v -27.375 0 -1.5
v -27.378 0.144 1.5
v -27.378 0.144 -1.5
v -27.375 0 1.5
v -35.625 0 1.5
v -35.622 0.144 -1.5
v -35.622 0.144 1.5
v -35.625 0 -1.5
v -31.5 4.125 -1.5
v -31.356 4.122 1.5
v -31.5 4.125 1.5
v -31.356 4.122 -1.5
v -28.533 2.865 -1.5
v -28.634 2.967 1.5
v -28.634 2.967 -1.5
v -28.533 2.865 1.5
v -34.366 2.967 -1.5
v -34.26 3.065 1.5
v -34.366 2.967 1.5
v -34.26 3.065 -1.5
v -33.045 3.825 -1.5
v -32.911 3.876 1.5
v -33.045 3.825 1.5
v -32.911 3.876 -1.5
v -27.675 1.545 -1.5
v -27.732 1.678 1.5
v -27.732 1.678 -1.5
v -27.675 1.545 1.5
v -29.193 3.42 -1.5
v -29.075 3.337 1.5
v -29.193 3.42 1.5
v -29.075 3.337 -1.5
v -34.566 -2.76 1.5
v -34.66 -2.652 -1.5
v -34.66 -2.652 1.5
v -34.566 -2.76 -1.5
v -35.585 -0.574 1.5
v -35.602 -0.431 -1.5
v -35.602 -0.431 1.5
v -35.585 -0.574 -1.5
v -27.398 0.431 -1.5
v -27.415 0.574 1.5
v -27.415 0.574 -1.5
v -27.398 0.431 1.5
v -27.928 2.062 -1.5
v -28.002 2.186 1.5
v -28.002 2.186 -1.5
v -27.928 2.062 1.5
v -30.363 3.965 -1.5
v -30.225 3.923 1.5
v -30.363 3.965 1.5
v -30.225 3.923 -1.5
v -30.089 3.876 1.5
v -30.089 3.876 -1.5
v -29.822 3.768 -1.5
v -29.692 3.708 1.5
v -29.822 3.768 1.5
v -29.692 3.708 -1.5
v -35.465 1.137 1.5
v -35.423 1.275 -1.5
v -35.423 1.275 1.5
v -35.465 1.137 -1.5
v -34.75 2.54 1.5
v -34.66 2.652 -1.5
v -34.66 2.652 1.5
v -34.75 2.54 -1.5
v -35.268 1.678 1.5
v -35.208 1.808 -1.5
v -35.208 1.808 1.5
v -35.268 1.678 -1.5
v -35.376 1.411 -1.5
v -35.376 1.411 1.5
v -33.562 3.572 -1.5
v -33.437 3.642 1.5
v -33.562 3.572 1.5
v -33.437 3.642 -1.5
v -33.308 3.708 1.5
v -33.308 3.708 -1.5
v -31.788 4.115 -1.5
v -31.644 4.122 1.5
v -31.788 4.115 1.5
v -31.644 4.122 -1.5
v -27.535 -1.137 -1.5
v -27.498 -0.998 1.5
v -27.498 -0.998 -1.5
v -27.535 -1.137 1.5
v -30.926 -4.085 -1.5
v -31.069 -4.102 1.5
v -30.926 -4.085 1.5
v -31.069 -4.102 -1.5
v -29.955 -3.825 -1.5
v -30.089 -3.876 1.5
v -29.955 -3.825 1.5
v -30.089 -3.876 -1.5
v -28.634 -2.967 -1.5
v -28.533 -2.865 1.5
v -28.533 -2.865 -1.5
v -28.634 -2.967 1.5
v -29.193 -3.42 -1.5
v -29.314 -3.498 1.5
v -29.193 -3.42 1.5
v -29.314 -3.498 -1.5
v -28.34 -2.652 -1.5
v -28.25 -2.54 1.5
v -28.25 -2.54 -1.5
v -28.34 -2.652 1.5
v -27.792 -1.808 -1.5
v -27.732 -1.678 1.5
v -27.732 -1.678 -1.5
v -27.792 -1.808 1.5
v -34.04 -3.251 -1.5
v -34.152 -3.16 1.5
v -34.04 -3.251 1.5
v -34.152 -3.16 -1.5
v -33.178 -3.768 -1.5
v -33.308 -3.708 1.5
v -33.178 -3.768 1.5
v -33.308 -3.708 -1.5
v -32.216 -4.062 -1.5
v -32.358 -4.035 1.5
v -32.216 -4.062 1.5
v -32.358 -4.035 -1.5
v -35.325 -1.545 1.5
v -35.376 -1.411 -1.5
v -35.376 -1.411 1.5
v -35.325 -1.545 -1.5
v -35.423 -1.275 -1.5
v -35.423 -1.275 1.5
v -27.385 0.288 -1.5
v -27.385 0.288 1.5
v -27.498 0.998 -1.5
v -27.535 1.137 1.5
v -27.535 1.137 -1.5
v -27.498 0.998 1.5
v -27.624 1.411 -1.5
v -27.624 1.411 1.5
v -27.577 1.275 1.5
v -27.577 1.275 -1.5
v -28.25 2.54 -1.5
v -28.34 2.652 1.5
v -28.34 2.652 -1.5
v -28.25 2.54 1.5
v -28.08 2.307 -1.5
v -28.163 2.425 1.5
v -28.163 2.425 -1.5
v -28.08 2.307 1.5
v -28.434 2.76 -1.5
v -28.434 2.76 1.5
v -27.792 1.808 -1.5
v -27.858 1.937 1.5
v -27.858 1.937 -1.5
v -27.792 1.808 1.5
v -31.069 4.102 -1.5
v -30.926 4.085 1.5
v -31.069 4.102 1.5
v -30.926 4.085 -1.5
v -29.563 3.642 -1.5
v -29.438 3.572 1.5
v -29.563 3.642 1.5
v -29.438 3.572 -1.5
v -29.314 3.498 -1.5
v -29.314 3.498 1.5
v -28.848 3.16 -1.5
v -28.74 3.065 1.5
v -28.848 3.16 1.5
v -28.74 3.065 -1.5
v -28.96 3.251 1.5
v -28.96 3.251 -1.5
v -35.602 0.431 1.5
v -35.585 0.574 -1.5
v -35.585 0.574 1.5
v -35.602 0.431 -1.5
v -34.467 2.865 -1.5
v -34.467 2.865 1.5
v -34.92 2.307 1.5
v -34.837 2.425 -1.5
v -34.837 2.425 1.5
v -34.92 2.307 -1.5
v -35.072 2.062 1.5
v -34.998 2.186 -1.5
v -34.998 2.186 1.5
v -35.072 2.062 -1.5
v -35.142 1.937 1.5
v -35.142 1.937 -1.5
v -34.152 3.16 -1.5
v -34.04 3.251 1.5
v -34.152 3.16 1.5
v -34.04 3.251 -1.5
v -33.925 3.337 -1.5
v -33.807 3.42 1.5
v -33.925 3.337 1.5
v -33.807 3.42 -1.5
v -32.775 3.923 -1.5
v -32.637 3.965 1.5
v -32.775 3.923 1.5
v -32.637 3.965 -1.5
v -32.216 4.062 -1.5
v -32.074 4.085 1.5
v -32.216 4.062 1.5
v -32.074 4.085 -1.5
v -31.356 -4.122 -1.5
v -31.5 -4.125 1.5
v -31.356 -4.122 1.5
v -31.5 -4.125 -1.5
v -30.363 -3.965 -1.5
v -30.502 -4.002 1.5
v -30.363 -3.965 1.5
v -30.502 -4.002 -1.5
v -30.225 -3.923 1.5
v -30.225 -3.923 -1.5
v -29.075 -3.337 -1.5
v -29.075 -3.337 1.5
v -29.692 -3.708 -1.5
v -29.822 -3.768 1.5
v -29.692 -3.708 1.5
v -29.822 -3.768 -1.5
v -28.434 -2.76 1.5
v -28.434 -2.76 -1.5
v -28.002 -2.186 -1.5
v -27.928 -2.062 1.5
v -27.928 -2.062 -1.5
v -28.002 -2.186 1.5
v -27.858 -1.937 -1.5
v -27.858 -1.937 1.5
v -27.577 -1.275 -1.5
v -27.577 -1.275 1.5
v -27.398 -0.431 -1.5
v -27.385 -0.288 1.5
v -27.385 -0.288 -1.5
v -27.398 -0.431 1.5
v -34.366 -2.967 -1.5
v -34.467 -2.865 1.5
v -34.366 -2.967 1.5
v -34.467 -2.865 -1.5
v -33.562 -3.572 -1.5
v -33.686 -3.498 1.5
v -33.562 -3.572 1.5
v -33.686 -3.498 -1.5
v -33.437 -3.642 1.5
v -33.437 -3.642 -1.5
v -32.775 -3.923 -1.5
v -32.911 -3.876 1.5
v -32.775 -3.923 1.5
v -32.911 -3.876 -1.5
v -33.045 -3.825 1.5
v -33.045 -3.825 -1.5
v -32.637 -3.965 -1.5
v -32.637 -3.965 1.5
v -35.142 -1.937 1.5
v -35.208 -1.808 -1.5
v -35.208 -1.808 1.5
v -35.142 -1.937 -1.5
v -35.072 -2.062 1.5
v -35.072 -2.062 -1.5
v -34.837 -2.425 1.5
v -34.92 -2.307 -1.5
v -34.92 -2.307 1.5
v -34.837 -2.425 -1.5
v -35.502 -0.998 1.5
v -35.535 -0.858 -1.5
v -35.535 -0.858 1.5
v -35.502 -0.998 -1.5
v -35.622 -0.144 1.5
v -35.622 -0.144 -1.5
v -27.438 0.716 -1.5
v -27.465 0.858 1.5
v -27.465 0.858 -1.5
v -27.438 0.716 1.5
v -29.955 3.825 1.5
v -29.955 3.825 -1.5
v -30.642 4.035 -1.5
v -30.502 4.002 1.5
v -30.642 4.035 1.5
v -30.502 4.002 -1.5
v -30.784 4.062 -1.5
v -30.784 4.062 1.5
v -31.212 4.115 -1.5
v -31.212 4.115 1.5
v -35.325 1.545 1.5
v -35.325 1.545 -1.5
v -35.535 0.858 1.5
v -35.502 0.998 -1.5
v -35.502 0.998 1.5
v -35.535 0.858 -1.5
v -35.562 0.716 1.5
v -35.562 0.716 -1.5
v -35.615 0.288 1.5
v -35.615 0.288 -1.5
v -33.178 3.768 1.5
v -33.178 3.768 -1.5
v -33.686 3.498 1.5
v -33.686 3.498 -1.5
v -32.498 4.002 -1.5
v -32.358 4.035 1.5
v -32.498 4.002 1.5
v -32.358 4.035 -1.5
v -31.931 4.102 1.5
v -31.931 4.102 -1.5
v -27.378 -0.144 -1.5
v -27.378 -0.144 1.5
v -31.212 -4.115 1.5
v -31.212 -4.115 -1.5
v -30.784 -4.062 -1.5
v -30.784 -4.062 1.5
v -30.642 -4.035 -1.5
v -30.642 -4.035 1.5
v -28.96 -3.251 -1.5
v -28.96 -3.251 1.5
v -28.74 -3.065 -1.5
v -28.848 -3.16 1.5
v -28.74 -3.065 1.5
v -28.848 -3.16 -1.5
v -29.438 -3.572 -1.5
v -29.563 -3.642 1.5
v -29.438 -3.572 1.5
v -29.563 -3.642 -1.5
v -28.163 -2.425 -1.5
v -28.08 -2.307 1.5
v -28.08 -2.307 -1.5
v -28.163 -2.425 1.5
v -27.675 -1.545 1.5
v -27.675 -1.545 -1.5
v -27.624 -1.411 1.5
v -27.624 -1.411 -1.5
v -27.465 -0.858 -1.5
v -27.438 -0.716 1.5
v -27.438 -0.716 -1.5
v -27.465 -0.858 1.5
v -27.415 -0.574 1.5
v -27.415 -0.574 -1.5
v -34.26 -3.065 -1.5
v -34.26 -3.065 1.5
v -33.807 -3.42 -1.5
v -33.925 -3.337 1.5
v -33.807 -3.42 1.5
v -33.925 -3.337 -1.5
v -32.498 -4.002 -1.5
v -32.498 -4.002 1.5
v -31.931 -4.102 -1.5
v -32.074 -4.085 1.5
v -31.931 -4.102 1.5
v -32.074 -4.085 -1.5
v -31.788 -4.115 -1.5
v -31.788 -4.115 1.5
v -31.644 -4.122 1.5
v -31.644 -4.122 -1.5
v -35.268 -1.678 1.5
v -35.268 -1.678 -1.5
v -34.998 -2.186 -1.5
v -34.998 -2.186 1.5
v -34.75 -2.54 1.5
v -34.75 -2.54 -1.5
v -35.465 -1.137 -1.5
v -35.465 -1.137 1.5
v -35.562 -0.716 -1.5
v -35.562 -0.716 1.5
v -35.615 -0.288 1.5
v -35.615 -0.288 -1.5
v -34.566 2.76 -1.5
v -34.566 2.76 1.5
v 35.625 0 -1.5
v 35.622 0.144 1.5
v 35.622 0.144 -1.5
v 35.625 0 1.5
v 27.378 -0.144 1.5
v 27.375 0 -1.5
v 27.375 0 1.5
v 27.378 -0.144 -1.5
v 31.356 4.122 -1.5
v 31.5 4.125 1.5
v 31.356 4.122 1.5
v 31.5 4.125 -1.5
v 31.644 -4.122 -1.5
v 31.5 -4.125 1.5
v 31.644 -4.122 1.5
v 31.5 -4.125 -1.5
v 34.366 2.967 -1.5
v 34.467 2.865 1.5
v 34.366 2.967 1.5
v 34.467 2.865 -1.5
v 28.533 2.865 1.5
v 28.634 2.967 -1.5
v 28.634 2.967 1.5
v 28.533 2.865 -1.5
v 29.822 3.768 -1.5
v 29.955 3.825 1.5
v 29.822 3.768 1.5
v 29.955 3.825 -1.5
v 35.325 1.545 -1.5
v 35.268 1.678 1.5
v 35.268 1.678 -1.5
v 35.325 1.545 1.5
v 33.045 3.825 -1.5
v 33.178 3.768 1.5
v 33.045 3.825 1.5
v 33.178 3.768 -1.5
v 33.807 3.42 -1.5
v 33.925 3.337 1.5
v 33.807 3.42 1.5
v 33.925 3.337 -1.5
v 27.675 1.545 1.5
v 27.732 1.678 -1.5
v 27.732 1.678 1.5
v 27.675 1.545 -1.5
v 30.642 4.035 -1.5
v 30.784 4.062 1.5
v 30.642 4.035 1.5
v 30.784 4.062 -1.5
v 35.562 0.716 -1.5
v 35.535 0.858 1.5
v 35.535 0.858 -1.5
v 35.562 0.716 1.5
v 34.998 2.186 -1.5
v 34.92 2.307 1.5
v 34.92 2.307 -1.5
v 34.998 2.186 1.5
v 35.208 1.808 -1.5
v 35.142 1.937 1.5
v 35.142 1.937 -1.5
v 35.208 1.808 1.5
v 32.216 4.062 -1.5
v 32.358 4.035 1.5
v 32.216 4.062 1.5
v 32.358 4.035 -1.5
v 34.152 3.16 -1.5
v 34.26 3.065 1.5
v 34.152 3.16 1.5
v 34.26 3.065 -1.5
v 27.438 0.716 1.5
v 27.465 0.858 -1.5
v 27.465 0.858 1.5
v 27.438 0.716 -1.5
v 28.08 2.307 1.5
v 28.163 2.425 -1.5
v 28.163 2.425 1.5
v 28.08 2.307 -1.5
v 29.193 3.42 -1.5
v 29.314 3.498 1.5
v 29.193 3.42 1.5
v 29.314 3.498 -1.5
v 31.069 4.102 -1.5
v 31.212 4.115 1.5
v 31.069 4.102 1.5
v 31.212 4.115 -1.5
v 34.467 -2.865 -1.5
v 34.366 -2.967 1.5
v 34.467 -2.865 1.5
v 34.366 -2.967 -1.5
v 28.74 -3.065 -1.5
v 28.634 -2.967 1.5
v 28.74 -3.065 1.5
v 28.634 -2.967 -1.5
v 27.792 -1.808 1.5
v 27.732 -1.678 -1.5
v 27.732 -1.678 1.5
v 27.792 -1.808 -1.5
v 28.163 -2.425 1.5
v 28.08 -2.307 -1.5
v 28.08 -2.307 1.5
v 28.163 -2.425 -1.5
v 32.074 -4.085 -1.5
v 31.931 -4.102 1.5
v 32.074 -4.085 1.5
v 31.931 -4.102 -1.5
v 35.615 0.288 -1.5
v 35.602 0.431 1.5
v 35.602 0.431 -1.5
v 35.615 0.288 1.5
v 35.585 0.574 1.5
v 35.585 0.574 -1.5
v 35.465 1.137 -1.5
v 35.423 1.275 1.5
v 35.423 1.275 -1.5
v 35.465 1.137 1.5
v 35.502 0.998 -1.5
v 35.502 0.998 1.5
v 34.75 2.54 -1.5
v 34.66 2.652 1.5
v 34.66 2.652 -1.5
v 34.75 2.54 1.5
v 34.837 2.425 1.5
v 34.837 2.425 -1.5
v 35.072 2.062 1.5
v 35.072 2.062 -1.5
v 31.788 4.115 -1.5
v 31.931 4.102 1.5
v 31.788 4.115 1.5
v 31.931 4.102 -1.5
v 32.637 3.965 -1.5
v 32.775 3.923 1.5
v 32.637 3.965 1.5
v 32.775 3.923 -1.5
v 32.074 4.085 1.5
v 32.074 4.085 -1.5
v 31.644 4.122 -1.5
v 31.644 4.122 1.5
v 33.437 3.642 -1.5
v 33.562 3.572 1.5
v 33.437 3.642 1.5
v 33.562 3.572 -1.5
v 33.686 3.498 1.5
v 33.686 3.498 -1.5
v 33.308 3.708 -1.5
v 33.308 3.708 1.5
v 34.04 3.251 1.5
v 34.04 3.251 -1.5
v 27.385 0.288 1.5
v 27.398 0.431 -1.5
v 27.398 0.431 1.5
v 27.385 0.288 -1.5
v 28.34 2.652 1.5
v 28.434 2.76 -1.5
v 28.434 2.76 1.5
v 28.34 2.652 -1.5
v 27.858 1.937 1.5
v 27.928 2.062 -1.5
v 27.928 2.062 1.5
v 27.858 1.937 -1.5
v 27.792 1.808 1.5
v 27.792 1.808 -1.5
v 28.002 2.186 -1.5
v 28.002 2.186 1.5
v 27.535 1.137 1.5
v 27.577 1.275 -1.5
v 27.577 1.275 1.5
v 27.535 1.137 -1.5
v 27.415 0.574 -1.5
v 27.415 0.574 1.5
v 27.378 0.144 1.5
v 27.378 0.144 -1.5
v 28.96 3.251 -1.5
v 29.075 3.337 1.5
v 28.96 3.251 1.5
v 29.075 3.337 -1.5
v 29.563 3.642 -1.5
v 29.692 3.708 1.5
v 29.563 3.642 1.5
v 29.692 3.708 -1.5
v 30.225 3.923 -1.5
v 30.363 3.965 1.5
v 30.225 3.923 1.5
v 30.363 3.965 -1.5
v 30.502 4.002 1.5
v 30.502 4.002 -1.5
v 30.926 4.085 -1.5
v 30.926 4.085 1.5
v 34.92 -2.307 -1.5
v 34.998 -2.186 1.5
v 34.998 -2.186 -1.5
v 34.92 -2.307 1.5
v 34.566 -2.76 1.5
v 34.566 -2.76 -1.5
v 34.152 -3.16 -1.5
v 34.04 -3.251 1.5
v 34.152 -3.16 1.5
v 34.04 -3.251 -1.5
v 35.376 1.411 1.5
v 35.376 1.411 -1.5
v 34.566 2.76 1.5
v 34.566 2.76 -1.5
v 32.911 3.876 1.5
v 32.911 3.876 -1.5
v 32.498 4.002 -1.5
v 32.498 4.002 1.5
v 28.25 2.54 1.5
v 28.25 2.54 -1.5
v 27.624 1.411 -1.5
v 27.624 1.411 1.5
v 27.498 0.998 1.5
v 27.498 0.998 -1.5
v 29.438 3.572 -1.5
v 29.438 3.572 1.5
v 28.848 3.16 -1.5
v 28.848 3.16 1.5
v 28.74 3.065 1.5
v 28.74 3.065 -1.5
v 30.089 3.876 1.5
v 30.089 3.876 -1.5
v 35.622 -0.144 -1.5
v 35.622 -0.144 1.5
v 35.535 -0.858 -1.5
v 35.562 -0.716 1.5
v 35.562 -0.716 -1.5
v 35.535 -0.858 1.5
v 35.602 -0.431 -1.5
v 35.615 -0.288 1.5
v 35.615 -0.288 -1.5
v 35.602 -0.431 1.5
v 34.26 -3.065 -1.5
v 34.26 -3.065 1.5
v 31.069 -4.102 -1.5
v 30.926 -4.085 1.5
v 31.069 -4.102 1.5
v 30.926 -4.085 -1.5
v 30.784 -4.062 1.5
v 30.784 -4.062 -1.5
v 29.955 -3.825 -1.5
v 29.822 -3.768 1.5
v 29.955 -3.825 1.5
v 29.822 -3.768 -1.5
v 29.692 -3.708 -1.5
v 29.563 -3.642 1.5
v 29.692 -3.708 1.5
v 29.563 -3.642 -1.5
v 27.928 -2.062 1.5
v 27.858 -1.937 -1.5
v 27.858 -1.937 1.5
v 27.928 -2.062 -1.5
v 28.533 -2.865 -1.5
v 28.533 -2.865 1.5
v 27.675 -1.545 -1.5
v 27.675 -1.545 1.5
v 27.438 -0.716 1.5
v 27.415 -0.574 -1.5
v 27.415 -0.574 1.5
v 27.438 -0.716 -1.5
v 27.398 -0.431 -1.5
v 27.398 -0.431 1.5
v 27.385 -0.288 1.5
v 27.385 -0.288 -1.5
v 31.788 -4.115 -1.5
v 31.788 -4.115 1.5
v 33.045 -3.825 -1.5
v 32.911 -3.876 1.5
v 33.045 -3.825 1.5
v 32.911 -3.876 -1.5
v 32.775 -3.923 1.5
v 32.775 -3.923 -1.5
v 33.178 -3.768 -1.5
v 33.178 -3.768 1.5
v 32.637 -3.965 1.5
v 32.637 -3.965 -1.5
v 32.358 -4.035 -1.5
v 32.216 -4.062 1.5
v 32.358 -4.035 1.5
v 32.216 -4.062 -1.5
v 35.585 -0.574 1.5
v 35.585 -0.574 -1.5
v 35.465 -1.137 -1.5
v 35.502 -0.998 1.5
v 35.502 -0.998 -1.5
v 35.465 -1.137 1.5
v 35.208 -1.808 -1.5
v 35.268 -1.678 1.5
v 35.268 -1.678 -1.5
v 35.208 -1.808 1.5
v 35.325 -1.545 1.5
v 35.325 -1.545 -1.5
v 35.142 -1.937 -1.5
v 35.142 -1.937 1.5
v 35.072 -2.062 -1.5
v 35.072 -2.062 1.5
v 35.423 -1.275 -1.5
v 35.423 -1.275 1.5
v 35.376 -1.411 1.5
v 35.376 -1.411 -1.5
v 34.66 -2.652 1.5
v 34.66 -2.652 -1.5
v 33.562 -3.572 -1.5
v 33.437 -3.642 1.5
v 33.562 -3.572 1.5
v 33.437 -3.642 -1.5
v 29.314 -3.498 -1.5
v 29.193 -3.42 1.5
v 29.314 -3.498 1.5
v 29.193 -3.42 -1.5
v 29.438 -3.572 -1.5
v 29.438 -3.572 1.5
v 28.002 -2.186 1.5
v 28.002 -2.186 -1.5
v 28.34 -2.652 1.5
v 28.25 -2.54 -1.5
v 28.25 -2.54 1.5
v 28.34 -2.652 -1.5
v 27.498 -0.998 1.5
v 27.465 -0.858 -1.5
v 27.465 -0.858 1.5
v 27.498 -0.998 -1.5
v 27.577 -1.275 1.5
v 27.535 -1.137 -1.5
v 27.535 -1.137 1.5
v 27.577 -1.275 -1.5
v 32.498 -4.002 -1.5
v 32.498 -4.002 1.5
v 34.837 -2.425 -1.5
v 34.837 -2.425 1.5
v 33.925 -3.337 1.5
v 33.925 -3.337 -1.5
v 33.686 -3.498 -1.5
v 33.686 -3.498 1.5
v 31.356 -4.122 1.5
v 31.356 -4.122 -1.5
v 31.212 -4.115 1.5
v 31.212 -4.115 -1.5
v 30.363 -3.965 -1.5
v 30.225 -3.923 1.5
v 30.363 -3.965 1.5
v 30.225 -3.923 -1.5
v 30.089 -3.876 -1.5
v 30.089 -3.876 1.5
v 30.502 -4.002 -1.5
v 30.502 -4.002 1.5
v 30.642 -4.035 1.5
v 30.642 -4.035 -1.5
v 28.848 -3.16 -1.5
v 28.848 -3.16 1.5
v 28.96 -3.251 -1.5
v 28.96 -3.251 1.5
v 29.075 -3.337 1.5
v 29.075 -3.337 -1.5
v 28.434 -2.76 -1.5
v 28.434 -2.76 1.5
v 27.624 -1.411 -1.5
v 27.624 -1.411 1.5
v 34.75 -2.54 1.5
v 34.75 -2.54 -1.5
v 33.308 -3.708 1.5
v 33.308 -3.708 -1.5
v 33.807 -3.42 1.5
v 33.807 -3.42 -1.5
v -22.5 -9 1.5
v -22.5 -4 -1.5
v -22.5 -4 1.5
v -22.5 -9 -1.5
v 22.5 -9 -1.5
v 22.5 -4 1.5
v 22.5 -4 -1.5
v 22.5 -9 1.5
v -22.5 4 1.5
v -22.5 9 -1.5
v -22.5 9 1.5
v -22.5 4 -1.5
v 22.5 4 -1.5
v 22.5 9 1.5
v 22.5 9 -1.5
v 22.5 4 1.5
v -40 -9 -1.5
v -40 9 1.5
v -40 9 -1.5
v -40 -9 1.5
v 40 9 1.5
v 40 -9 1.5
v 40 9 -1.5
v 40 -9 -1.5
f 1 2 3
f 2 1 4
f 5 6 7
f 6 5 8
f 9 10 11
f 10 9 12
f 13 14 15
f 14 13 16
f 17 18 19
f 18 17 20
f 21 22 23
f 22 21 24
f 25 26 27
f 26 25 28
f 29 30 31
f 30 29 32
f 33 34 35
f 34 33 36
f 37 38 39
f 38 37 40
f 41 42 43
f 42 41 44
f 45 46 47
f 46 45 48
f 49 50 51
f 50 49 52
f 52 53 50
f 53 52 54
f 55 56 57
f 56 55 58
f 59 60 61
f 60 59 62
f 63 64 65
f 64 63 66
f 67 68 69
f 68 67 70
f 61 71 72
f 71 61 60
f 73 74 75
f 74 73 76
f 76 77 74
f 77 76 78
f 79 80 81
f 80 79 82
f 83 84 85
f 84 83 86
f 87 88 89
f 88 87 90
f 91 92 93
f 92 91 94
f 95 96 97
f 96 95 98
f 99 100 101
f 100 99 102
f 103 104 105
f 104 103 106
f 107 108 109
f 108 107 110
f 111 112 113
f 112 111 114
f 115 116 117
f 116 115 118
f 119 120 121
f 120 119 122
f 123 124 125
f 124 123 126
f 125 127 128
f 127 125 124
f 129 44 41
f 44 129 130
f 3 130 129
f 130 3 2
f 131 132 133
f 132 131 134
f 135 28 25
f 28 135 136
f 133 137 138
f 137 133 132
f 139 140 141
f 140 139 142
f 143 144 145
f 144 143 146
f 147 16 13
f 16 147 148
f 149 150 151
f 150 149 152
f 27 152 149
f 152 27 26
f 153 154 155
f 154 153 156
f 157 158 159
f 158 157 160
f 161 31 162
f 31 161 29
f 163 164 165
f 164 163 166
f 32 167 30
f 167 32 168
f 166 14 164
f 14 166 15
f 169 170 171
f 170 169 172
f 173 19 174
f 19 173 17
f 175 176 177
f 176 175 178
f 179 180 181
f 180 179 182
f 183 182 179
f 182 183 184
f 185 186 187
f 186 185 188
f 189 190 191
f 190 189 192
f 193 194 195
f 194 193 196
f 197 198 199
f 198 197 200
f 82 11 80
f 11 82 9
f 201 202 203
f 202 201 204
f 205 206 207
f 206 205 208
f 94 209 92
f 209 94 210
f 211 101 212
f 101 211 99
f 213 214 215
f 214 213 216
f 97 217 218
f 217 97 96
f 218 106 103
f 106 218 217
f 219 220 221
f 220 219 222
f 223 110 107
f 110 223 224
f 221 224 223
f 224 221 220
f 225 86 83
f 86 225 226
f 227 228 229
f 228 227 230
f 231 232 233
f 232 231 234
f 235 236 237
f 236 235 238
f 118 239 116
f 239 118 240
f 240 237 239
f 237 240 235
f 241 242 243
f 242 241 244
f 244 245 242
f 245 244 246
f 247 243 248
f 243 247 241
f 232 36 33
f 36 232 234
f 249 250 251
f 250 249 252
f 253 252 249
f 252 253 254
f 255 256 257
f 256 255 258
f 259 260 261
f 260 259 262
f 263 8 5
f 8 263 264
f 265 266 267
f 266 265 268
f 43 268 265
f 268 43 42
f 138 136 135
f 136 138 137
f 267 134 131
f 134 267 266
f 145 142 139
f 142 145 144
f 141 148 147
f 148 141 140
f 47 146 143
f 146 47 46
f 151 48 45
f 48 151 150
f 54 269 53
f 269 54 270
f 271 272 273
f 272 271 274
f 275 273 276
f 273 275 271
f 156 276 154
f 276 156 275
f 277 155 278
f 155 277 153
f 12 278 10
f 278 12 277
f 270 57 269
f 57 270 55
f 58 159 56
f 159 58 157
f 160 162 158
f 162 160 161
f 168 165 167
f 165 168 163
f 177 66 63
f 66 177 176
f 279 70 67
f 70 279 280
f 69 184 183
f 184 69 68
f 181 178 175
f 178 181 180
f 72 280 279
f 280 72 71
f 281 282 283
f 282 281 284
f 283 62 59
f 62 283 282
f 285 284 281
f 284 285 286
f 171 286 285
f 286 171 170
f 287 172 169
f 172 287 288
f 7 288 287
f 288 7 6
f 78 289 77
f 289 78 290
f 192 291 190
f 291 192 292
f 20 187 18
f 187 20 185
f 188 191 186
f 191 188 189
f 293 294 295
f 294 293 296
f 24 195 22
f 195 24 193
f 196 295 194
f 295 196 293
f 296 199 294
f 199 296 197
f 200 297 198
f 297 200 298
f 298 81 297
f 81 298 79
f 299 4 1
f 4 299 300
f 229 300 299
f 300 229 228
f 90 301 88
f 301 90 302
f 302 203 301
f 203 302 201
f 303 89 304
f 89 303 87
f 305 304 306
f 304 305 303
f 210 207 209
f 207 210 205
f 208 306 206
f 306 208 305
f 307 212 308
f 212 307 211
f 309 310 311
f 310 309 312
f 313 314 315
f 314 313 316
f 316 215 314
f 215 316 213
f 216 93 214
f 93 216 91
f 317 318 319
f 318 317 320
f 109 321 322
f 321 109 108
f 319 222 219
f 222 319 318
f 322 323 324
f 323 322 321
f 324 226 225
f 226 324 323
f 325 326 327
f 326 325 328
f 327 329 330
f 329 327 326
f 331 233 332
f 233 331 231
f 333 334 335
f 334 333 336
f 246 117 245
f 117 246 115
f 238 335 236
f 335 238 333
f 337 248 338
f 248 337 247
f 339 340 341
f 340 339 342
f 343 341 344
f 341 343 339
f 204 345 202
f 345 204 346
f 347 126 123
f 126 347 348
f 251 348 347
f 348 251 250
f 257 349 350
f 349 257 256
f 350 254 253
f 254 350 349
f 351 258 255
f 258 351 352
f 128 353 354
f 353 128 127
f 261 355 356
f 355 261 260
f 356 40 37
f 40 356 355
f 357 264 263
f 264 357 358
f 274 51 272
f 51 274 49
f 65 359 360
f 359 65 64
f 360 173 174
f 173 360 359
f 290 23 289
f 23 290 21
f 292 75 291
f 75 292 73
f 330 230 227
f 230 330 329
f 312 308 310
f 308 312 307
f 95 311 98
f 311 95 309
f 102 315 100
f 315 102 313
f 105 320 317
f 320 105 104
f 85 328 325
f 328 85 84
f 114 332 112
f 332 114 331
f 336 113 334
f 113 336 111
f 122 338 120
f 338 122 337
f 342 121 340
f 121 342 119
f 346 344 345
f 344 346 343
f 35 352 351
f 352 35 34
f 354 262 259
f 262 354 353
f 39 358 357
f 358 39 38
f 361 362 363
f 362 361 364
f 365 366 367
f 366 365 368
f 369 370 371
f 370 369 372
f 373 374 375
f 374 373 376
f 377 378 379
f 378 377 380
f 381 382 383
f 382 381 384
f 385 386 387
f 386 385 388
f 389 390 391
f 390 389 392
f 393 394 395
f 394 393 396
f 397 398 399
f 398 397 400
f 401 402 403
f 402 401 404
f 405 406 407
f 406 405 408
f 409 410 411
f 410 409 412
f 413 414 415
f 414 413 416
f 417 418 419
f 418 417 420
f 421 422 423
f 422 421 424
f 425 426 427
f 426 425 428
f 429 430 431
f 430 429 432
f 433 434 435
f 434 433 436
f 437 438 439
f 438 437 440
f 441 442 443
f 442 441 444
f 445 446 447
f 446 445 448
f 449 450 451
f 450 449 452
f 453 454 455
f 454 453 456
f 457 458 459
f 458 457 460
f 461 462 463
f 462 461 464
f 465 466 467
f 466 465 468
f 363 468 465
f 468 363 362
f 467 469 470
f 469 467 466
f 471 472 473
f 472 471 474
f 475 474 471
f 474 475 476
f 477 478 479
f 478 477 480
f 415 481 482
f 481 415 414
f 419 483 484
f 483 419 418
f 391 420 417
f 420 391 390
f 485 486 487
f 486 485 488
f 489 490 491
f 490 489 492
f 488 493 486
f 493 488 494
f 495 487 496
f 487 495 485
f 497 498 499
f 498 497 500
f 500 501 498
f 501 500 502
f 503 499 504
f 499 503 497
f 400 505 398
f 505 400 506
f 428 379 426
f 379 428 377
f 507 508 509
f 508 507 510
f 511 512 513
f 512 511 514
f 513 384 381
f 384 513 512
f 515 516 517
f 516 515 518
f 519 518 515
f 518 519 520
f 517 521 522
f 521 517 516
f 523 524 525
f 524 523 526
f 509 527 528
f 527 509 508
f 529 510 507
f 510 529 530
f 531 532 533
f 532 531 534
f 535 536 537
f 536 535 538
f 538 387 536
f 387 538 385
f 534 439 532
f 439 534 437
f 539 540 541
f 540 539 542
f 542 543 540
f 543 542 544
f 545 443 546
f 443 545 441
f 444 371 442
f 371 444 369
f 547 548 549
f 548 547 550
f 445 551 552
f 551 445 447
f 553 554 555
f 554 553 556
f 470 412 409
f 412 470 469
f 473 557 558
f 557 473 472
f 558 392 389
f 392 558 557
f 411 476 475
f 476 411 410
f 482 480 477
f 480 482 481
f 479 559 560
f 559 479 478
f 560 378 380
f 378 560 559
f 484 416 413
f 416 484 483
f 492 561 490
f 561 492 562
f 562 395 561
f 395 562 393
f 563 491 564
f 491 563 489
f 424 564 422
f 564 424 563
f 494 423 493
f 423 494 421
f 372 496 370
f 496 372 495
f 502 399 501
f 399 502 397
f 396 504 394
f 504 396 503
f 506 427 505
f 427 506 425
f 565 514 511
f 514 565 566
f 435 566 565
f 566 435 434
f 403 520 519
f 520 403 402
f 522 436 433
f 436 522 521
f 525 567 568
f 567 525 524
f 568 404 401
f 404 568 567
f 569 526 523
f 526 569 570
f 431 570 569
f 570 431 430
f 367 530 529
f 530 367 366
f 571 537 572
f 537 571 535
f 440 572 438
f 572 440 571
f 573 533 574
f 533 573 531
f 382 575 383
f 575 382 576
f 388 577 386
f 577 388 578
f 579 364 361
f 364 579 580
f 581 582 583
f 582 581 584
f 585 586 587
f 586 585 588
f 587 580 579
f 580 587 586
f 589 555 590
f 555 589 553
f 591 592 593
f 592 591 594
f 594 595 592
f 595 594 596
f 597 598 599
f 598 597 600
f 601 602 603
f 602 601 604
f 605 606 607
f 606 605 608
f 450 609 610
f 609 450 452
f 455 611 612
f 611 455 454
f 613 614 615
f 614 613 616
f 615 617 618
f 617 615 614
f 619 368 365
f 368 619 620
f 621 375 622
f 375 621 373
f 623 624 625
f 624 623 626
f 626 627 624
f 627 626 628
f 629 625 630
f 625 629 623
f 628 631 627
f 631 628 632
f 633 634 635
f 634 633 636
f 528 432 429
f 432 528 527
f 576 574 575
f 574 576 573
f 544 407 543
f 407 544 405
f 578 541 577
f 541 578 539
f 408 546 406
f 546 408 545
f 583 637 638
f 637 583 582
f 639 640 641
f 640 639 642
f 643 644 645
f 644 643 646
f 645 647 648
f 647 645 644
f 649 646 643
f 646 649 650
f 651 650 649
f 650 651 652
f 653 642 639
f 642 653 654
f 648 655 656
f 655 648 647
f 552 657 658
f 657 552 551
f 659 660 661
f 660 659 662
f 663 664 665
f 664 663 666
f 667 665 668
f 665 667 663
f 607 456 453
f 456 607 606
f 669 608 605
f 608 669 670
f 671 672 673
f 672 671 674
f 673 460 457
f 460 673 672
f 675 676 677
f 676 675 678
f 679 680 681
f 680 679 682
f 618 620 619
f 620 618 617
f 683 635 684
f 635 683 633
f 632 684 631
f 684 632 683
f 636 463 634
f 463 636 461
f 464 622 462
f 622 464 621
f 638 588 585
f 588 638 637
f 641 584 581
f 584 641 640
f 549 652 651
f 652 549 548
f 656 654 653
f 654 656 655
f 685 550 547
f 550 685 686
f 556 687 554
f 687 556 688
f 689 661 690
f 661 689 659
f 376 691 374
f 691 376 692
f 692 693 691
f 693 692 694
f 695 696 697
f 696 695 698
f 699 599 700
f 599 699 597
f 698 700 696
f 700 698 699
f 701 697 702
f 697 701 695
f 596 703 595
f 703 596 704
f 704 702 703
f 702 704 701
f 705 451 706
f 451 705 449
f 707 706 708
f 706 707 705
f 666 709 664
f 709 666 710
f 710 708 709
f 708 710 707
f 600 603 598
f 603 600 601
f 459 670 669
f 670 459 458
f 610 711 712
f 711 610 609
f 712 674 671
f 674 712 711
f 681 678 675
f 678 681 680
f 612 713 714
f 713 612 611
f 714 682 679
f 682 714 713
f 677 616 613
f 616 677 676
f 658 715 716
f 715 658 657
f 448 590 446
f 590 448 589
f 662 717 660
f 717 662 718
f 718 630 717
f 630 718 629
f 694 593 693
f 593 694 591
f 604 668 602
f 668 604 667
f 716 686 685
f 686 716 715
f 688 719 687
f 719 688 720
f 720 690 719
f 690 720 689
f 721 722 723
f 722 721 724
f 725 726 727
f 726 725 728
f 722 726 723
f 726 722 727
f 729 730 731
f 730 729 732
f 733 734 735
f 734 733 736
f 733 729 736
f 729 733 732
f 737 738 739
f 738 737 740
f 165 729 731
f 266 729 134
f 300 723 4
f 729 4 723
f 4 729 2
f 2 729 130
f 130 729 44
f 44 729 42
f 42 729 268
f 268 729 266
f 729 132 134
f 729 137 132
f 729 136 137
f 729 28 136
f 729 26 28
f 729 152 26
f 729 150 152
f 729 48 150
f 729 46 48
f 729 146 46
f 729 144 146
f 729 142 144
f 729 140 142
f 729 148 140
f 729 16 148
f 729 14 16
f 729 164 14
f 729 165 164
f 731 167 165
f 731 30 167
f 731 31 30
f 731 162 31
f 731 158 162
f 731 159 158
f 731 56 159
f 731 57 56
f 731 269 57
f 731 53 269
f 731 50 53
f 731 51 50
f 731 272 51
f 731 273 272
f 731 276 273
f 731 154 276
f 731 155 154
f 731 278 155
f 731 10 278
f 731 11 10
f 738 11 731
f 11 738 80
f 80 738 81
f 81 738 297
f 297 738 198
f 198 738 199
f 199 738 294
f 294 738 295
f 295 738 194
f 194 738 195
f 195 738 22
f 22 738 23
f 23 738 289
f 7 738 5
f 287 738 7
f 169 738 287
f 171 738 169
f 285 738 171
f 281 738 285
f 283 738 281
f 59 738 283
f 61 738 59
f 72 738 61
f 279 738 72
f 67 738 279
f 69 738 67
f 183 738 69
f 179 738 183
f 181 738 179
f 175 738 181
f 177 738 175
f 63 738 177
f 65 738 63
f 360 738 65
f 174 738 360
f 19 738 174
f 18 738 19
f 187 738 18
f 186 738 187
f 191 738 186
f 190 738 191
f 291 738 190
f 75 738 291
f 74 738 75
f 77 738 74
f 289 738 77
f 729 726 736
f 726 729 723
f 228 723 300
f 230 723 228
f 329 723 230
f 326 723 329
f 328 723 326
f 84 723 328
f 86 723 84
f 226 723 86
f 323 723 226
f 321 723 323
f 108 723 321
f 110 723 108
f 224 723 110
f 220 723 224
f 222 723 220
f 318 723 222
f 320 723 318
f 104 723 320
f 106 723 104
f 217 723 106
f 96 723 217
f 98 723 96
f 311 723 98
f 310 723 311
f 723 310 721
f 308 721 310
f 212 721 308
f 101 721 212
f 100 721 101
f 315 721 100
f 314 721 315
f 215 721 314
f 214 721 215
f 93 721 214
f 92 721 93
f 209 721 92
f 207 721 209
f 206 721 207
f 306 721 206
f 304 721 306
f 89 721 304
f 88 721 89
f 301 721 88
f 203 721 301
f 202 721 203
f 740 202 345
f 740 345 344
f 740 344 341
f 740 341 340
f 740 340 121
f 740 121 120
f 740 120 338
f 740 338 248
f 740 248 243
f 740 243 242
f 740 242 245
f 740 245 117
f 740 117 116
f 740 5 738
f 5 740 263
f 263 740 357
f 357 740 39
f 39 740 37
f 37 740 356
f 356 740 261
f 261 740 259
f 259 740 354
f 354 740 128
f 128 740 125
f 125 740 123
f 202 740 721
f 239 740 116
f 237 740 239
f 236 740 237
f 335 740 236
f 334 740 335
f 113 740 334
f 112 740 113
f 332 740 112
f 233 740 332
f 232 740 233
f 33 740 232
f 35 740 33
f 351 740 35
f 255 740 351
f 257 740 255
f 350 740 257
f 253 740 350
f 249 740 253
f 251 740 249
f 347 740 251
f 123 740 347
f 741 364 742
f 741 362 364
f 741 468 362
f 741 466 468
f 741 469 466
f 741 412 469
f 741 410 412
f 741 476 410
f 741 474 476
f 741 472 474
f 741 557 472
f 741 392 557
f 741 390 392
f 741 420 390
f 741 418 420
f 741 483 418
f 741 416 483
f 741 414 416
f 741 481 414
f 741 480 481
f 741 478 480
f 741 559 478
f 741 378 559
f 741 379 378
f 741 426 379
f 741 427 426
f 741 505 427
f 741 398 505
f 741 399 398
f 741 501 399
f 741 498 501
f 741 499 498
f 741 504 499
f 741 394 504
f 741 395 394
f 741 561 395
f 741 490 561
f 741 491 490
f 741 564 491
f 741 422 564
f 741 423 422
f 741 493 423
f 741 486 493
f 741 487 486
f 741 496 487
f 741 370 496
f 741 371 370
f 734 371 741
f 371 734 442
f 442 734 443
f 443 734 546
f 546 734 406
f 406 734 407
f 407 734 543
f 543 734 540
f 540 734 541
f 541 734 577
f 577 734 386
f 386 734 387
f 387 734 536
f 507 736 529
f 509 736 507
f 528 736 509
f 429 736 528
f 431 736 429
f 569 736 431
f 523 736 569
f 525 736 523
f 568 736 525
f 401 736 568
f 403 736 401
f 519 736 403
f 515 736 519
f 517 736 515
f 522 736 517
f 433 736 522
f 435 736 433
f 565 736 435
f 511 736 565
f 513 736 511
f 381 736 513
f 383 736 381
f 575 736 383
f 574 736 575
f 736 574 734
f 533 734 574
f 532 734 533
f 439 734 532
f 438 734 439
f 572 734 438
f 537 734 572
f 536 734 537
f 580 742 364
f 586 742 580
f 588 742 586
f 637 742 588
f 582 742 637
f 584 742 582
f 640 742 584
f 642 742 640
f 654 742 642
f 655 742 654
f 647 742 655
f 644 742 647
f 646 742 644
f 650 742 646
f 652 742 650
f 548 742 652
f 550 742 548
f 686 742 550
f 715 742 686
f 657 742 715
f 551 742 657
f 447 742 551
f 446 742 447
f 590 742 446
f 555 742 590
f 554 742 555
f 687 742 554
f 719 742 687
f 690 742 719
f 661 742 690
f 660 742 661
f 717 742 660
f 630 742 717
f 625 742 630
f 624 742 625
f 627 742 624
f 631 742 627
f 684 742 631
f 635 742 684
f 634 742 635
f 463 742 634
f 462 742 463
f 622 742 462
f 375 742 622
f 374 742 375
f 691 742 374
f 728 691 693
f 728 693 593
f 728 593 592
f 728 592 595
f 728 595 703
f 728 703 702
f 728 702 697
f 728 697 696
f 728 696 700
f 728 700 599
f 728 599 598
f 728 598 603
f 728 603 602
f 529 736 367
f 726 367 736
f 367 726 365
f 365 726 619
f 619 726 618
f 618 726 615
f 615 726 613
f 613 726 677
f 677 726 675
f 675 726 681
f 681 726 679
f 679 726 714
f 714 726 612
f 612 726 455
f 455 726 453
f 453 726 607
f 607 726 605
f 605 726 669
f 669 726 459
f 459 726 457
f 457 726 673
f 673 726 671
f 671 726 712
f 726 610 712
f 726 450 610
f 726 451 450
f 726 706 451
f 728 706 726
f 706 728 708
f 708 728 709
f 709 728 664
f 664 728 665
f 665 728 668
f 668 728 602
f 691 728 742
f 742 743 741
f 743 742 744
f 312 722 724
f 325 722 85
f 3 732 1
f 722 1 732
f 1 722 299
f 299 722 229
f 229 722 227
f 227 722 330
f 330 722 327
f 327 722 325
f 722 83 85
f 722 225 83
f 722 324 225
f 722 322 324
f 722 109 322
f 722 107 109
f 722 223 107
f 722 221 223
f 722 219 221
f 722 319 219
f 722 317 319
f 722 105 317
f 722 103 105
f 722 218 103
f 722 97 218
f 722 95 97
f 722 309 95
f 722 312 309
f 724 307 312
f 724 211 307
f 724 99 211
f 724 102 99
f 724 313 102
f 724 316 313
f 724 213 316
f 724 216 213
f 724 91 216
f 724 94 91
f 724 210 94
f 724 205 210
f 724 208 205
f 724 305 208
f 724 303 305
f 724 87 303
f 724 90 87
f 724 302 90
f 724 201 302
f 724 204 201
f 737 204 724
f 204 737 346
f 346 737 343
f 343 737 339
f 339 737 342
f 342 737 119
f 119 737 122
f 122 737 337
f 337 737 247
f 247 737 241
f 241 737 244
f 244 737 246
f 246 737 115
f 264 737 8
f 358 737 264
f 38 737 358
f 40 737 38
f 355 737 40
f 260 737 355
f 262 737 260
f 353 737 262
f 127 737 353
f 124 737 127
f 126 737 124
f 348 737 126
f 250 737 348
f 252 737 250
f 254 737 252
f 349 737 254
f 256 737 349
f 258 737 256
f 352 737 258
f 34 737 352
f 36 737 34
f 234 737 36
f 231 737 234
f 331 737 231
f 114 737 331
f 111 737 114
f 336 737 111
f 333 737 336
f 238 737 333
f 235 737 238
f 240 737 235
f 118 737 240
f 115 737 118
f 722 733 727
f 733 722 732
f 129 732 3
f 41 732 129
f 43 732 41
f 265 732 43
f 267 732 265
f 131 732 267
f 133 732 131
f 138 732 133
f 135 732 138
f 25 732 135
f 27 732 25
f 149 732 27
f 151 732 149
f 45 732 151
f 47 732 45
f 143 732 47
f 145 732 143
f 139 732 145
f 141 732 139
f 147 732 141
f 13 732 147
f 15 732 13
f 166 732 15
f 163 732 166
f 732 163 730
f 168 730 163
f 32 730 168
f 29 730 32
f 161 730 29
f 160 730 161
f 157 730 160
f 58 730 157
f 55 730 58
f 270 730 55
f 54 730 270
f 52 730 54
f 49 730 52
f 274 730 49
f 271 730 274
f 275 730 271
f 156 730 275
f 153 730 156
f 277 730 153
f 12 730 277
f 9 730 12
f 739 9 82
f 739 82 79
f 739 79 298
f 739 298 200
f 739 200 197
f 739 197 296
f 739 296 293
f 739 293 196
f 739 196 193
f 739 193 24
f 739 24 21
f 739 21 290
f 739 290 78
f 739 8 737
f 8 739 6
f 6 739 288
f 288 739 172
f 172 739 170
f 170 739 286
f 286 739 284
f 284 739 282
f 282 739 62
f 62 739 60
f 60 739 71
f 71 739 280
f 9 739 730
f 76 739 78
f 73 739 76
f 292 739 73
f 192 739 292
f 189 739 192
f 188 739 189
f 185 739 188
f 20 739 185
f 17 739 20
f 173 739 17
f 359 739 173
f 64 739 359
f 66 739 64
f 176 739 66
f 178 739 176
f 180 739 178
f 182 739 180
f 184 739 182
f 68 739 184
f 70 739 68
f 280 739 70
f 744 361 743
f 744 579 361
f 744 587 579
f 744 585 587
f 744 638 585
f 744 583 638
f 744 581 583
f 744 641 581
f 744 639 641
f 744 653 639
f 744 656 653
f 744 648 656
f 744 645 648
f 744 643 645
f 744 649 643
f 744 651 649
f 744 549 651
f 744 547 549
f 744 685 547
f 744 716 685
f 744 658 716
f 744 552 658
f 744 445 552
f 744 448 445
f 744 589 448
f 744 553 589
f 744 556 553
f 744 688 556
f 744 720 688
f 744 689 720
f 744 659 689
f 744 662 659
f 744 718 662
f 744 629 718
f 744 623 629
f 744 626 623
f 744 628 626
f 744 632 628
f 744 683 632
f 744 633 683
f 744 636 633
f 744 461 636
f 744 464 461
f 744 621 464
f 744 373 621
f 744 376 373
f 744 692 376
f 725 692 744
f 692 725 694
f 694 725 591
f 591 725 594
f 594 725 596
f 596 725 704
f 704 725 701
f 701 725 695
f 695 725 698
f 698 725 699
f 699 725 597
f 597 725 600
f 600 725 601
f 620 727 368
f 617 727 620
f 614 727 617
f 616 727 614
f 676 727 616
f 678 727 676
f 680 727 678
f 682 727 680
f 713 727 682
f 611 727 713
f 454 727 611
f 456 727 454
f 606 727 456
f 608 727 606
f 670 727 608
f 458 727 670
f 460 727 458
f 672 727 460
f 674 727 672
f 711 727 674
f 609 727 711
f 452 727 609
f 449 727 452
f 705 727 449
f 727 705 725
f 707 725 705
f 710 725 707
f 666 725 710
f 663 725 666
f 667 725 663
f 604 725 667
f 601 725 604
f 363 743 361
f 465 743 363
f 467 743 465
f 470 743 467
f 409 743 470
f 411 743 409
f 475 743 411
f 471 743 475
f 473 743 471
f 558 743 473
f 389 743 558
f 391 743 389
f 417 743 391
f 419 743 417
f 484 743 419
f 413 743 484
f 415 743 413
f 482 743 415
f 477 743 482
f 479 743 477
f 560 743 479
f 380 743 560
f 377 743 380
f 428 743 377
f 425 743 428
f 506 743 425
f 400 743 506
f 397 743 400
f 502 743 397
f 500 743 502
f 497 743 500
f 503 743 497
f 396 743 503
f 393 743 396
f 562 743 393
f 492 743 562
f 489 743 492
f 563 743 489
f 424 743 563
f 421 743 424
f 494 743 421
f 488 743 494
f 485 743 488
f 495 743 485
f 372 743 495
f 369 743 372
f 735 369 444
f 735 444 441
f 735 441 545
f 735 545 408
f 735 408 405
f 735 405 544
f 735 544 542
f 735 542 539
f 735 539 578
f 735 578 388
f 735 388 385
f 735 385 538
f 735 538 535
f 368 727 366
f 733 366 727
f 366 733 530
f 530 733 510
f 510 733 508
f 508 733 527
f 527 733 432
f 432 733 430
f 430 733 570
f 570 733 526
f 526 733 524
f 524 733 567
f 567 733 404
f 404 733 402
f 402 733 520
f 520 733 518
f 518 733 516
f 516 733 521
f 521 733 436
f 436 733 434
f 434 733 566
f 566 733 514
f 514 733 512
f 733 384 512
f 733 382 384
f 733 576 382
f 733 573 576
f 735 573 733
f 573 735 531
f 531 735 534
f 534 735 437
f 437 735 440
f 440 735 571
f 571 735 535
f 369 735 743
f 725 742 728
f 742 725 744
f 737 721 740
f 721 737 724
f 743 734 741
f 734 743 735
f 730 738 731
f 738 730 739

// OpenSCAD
//cube([120,120,3], center = true);
//translate([-45,-45,0])cylinder(h = 3, r=15, $fn = 180, center = true);
//rotate_extrude(convexity = 10, $fn = A) translate([20+1.5, 0, 0])circle(d = 3, $fn = B);
//module Test(){





difference(){
cube([80,18,3], center = true);

for(i=[-1,1])translate([i*63/2,0,0])cylinder(h = 5, d=8.25, $fn = 180, center = true);
    
for(i=[-1,1])translate([0,i*10,0]) cube([45,12,4], center = true);
}
